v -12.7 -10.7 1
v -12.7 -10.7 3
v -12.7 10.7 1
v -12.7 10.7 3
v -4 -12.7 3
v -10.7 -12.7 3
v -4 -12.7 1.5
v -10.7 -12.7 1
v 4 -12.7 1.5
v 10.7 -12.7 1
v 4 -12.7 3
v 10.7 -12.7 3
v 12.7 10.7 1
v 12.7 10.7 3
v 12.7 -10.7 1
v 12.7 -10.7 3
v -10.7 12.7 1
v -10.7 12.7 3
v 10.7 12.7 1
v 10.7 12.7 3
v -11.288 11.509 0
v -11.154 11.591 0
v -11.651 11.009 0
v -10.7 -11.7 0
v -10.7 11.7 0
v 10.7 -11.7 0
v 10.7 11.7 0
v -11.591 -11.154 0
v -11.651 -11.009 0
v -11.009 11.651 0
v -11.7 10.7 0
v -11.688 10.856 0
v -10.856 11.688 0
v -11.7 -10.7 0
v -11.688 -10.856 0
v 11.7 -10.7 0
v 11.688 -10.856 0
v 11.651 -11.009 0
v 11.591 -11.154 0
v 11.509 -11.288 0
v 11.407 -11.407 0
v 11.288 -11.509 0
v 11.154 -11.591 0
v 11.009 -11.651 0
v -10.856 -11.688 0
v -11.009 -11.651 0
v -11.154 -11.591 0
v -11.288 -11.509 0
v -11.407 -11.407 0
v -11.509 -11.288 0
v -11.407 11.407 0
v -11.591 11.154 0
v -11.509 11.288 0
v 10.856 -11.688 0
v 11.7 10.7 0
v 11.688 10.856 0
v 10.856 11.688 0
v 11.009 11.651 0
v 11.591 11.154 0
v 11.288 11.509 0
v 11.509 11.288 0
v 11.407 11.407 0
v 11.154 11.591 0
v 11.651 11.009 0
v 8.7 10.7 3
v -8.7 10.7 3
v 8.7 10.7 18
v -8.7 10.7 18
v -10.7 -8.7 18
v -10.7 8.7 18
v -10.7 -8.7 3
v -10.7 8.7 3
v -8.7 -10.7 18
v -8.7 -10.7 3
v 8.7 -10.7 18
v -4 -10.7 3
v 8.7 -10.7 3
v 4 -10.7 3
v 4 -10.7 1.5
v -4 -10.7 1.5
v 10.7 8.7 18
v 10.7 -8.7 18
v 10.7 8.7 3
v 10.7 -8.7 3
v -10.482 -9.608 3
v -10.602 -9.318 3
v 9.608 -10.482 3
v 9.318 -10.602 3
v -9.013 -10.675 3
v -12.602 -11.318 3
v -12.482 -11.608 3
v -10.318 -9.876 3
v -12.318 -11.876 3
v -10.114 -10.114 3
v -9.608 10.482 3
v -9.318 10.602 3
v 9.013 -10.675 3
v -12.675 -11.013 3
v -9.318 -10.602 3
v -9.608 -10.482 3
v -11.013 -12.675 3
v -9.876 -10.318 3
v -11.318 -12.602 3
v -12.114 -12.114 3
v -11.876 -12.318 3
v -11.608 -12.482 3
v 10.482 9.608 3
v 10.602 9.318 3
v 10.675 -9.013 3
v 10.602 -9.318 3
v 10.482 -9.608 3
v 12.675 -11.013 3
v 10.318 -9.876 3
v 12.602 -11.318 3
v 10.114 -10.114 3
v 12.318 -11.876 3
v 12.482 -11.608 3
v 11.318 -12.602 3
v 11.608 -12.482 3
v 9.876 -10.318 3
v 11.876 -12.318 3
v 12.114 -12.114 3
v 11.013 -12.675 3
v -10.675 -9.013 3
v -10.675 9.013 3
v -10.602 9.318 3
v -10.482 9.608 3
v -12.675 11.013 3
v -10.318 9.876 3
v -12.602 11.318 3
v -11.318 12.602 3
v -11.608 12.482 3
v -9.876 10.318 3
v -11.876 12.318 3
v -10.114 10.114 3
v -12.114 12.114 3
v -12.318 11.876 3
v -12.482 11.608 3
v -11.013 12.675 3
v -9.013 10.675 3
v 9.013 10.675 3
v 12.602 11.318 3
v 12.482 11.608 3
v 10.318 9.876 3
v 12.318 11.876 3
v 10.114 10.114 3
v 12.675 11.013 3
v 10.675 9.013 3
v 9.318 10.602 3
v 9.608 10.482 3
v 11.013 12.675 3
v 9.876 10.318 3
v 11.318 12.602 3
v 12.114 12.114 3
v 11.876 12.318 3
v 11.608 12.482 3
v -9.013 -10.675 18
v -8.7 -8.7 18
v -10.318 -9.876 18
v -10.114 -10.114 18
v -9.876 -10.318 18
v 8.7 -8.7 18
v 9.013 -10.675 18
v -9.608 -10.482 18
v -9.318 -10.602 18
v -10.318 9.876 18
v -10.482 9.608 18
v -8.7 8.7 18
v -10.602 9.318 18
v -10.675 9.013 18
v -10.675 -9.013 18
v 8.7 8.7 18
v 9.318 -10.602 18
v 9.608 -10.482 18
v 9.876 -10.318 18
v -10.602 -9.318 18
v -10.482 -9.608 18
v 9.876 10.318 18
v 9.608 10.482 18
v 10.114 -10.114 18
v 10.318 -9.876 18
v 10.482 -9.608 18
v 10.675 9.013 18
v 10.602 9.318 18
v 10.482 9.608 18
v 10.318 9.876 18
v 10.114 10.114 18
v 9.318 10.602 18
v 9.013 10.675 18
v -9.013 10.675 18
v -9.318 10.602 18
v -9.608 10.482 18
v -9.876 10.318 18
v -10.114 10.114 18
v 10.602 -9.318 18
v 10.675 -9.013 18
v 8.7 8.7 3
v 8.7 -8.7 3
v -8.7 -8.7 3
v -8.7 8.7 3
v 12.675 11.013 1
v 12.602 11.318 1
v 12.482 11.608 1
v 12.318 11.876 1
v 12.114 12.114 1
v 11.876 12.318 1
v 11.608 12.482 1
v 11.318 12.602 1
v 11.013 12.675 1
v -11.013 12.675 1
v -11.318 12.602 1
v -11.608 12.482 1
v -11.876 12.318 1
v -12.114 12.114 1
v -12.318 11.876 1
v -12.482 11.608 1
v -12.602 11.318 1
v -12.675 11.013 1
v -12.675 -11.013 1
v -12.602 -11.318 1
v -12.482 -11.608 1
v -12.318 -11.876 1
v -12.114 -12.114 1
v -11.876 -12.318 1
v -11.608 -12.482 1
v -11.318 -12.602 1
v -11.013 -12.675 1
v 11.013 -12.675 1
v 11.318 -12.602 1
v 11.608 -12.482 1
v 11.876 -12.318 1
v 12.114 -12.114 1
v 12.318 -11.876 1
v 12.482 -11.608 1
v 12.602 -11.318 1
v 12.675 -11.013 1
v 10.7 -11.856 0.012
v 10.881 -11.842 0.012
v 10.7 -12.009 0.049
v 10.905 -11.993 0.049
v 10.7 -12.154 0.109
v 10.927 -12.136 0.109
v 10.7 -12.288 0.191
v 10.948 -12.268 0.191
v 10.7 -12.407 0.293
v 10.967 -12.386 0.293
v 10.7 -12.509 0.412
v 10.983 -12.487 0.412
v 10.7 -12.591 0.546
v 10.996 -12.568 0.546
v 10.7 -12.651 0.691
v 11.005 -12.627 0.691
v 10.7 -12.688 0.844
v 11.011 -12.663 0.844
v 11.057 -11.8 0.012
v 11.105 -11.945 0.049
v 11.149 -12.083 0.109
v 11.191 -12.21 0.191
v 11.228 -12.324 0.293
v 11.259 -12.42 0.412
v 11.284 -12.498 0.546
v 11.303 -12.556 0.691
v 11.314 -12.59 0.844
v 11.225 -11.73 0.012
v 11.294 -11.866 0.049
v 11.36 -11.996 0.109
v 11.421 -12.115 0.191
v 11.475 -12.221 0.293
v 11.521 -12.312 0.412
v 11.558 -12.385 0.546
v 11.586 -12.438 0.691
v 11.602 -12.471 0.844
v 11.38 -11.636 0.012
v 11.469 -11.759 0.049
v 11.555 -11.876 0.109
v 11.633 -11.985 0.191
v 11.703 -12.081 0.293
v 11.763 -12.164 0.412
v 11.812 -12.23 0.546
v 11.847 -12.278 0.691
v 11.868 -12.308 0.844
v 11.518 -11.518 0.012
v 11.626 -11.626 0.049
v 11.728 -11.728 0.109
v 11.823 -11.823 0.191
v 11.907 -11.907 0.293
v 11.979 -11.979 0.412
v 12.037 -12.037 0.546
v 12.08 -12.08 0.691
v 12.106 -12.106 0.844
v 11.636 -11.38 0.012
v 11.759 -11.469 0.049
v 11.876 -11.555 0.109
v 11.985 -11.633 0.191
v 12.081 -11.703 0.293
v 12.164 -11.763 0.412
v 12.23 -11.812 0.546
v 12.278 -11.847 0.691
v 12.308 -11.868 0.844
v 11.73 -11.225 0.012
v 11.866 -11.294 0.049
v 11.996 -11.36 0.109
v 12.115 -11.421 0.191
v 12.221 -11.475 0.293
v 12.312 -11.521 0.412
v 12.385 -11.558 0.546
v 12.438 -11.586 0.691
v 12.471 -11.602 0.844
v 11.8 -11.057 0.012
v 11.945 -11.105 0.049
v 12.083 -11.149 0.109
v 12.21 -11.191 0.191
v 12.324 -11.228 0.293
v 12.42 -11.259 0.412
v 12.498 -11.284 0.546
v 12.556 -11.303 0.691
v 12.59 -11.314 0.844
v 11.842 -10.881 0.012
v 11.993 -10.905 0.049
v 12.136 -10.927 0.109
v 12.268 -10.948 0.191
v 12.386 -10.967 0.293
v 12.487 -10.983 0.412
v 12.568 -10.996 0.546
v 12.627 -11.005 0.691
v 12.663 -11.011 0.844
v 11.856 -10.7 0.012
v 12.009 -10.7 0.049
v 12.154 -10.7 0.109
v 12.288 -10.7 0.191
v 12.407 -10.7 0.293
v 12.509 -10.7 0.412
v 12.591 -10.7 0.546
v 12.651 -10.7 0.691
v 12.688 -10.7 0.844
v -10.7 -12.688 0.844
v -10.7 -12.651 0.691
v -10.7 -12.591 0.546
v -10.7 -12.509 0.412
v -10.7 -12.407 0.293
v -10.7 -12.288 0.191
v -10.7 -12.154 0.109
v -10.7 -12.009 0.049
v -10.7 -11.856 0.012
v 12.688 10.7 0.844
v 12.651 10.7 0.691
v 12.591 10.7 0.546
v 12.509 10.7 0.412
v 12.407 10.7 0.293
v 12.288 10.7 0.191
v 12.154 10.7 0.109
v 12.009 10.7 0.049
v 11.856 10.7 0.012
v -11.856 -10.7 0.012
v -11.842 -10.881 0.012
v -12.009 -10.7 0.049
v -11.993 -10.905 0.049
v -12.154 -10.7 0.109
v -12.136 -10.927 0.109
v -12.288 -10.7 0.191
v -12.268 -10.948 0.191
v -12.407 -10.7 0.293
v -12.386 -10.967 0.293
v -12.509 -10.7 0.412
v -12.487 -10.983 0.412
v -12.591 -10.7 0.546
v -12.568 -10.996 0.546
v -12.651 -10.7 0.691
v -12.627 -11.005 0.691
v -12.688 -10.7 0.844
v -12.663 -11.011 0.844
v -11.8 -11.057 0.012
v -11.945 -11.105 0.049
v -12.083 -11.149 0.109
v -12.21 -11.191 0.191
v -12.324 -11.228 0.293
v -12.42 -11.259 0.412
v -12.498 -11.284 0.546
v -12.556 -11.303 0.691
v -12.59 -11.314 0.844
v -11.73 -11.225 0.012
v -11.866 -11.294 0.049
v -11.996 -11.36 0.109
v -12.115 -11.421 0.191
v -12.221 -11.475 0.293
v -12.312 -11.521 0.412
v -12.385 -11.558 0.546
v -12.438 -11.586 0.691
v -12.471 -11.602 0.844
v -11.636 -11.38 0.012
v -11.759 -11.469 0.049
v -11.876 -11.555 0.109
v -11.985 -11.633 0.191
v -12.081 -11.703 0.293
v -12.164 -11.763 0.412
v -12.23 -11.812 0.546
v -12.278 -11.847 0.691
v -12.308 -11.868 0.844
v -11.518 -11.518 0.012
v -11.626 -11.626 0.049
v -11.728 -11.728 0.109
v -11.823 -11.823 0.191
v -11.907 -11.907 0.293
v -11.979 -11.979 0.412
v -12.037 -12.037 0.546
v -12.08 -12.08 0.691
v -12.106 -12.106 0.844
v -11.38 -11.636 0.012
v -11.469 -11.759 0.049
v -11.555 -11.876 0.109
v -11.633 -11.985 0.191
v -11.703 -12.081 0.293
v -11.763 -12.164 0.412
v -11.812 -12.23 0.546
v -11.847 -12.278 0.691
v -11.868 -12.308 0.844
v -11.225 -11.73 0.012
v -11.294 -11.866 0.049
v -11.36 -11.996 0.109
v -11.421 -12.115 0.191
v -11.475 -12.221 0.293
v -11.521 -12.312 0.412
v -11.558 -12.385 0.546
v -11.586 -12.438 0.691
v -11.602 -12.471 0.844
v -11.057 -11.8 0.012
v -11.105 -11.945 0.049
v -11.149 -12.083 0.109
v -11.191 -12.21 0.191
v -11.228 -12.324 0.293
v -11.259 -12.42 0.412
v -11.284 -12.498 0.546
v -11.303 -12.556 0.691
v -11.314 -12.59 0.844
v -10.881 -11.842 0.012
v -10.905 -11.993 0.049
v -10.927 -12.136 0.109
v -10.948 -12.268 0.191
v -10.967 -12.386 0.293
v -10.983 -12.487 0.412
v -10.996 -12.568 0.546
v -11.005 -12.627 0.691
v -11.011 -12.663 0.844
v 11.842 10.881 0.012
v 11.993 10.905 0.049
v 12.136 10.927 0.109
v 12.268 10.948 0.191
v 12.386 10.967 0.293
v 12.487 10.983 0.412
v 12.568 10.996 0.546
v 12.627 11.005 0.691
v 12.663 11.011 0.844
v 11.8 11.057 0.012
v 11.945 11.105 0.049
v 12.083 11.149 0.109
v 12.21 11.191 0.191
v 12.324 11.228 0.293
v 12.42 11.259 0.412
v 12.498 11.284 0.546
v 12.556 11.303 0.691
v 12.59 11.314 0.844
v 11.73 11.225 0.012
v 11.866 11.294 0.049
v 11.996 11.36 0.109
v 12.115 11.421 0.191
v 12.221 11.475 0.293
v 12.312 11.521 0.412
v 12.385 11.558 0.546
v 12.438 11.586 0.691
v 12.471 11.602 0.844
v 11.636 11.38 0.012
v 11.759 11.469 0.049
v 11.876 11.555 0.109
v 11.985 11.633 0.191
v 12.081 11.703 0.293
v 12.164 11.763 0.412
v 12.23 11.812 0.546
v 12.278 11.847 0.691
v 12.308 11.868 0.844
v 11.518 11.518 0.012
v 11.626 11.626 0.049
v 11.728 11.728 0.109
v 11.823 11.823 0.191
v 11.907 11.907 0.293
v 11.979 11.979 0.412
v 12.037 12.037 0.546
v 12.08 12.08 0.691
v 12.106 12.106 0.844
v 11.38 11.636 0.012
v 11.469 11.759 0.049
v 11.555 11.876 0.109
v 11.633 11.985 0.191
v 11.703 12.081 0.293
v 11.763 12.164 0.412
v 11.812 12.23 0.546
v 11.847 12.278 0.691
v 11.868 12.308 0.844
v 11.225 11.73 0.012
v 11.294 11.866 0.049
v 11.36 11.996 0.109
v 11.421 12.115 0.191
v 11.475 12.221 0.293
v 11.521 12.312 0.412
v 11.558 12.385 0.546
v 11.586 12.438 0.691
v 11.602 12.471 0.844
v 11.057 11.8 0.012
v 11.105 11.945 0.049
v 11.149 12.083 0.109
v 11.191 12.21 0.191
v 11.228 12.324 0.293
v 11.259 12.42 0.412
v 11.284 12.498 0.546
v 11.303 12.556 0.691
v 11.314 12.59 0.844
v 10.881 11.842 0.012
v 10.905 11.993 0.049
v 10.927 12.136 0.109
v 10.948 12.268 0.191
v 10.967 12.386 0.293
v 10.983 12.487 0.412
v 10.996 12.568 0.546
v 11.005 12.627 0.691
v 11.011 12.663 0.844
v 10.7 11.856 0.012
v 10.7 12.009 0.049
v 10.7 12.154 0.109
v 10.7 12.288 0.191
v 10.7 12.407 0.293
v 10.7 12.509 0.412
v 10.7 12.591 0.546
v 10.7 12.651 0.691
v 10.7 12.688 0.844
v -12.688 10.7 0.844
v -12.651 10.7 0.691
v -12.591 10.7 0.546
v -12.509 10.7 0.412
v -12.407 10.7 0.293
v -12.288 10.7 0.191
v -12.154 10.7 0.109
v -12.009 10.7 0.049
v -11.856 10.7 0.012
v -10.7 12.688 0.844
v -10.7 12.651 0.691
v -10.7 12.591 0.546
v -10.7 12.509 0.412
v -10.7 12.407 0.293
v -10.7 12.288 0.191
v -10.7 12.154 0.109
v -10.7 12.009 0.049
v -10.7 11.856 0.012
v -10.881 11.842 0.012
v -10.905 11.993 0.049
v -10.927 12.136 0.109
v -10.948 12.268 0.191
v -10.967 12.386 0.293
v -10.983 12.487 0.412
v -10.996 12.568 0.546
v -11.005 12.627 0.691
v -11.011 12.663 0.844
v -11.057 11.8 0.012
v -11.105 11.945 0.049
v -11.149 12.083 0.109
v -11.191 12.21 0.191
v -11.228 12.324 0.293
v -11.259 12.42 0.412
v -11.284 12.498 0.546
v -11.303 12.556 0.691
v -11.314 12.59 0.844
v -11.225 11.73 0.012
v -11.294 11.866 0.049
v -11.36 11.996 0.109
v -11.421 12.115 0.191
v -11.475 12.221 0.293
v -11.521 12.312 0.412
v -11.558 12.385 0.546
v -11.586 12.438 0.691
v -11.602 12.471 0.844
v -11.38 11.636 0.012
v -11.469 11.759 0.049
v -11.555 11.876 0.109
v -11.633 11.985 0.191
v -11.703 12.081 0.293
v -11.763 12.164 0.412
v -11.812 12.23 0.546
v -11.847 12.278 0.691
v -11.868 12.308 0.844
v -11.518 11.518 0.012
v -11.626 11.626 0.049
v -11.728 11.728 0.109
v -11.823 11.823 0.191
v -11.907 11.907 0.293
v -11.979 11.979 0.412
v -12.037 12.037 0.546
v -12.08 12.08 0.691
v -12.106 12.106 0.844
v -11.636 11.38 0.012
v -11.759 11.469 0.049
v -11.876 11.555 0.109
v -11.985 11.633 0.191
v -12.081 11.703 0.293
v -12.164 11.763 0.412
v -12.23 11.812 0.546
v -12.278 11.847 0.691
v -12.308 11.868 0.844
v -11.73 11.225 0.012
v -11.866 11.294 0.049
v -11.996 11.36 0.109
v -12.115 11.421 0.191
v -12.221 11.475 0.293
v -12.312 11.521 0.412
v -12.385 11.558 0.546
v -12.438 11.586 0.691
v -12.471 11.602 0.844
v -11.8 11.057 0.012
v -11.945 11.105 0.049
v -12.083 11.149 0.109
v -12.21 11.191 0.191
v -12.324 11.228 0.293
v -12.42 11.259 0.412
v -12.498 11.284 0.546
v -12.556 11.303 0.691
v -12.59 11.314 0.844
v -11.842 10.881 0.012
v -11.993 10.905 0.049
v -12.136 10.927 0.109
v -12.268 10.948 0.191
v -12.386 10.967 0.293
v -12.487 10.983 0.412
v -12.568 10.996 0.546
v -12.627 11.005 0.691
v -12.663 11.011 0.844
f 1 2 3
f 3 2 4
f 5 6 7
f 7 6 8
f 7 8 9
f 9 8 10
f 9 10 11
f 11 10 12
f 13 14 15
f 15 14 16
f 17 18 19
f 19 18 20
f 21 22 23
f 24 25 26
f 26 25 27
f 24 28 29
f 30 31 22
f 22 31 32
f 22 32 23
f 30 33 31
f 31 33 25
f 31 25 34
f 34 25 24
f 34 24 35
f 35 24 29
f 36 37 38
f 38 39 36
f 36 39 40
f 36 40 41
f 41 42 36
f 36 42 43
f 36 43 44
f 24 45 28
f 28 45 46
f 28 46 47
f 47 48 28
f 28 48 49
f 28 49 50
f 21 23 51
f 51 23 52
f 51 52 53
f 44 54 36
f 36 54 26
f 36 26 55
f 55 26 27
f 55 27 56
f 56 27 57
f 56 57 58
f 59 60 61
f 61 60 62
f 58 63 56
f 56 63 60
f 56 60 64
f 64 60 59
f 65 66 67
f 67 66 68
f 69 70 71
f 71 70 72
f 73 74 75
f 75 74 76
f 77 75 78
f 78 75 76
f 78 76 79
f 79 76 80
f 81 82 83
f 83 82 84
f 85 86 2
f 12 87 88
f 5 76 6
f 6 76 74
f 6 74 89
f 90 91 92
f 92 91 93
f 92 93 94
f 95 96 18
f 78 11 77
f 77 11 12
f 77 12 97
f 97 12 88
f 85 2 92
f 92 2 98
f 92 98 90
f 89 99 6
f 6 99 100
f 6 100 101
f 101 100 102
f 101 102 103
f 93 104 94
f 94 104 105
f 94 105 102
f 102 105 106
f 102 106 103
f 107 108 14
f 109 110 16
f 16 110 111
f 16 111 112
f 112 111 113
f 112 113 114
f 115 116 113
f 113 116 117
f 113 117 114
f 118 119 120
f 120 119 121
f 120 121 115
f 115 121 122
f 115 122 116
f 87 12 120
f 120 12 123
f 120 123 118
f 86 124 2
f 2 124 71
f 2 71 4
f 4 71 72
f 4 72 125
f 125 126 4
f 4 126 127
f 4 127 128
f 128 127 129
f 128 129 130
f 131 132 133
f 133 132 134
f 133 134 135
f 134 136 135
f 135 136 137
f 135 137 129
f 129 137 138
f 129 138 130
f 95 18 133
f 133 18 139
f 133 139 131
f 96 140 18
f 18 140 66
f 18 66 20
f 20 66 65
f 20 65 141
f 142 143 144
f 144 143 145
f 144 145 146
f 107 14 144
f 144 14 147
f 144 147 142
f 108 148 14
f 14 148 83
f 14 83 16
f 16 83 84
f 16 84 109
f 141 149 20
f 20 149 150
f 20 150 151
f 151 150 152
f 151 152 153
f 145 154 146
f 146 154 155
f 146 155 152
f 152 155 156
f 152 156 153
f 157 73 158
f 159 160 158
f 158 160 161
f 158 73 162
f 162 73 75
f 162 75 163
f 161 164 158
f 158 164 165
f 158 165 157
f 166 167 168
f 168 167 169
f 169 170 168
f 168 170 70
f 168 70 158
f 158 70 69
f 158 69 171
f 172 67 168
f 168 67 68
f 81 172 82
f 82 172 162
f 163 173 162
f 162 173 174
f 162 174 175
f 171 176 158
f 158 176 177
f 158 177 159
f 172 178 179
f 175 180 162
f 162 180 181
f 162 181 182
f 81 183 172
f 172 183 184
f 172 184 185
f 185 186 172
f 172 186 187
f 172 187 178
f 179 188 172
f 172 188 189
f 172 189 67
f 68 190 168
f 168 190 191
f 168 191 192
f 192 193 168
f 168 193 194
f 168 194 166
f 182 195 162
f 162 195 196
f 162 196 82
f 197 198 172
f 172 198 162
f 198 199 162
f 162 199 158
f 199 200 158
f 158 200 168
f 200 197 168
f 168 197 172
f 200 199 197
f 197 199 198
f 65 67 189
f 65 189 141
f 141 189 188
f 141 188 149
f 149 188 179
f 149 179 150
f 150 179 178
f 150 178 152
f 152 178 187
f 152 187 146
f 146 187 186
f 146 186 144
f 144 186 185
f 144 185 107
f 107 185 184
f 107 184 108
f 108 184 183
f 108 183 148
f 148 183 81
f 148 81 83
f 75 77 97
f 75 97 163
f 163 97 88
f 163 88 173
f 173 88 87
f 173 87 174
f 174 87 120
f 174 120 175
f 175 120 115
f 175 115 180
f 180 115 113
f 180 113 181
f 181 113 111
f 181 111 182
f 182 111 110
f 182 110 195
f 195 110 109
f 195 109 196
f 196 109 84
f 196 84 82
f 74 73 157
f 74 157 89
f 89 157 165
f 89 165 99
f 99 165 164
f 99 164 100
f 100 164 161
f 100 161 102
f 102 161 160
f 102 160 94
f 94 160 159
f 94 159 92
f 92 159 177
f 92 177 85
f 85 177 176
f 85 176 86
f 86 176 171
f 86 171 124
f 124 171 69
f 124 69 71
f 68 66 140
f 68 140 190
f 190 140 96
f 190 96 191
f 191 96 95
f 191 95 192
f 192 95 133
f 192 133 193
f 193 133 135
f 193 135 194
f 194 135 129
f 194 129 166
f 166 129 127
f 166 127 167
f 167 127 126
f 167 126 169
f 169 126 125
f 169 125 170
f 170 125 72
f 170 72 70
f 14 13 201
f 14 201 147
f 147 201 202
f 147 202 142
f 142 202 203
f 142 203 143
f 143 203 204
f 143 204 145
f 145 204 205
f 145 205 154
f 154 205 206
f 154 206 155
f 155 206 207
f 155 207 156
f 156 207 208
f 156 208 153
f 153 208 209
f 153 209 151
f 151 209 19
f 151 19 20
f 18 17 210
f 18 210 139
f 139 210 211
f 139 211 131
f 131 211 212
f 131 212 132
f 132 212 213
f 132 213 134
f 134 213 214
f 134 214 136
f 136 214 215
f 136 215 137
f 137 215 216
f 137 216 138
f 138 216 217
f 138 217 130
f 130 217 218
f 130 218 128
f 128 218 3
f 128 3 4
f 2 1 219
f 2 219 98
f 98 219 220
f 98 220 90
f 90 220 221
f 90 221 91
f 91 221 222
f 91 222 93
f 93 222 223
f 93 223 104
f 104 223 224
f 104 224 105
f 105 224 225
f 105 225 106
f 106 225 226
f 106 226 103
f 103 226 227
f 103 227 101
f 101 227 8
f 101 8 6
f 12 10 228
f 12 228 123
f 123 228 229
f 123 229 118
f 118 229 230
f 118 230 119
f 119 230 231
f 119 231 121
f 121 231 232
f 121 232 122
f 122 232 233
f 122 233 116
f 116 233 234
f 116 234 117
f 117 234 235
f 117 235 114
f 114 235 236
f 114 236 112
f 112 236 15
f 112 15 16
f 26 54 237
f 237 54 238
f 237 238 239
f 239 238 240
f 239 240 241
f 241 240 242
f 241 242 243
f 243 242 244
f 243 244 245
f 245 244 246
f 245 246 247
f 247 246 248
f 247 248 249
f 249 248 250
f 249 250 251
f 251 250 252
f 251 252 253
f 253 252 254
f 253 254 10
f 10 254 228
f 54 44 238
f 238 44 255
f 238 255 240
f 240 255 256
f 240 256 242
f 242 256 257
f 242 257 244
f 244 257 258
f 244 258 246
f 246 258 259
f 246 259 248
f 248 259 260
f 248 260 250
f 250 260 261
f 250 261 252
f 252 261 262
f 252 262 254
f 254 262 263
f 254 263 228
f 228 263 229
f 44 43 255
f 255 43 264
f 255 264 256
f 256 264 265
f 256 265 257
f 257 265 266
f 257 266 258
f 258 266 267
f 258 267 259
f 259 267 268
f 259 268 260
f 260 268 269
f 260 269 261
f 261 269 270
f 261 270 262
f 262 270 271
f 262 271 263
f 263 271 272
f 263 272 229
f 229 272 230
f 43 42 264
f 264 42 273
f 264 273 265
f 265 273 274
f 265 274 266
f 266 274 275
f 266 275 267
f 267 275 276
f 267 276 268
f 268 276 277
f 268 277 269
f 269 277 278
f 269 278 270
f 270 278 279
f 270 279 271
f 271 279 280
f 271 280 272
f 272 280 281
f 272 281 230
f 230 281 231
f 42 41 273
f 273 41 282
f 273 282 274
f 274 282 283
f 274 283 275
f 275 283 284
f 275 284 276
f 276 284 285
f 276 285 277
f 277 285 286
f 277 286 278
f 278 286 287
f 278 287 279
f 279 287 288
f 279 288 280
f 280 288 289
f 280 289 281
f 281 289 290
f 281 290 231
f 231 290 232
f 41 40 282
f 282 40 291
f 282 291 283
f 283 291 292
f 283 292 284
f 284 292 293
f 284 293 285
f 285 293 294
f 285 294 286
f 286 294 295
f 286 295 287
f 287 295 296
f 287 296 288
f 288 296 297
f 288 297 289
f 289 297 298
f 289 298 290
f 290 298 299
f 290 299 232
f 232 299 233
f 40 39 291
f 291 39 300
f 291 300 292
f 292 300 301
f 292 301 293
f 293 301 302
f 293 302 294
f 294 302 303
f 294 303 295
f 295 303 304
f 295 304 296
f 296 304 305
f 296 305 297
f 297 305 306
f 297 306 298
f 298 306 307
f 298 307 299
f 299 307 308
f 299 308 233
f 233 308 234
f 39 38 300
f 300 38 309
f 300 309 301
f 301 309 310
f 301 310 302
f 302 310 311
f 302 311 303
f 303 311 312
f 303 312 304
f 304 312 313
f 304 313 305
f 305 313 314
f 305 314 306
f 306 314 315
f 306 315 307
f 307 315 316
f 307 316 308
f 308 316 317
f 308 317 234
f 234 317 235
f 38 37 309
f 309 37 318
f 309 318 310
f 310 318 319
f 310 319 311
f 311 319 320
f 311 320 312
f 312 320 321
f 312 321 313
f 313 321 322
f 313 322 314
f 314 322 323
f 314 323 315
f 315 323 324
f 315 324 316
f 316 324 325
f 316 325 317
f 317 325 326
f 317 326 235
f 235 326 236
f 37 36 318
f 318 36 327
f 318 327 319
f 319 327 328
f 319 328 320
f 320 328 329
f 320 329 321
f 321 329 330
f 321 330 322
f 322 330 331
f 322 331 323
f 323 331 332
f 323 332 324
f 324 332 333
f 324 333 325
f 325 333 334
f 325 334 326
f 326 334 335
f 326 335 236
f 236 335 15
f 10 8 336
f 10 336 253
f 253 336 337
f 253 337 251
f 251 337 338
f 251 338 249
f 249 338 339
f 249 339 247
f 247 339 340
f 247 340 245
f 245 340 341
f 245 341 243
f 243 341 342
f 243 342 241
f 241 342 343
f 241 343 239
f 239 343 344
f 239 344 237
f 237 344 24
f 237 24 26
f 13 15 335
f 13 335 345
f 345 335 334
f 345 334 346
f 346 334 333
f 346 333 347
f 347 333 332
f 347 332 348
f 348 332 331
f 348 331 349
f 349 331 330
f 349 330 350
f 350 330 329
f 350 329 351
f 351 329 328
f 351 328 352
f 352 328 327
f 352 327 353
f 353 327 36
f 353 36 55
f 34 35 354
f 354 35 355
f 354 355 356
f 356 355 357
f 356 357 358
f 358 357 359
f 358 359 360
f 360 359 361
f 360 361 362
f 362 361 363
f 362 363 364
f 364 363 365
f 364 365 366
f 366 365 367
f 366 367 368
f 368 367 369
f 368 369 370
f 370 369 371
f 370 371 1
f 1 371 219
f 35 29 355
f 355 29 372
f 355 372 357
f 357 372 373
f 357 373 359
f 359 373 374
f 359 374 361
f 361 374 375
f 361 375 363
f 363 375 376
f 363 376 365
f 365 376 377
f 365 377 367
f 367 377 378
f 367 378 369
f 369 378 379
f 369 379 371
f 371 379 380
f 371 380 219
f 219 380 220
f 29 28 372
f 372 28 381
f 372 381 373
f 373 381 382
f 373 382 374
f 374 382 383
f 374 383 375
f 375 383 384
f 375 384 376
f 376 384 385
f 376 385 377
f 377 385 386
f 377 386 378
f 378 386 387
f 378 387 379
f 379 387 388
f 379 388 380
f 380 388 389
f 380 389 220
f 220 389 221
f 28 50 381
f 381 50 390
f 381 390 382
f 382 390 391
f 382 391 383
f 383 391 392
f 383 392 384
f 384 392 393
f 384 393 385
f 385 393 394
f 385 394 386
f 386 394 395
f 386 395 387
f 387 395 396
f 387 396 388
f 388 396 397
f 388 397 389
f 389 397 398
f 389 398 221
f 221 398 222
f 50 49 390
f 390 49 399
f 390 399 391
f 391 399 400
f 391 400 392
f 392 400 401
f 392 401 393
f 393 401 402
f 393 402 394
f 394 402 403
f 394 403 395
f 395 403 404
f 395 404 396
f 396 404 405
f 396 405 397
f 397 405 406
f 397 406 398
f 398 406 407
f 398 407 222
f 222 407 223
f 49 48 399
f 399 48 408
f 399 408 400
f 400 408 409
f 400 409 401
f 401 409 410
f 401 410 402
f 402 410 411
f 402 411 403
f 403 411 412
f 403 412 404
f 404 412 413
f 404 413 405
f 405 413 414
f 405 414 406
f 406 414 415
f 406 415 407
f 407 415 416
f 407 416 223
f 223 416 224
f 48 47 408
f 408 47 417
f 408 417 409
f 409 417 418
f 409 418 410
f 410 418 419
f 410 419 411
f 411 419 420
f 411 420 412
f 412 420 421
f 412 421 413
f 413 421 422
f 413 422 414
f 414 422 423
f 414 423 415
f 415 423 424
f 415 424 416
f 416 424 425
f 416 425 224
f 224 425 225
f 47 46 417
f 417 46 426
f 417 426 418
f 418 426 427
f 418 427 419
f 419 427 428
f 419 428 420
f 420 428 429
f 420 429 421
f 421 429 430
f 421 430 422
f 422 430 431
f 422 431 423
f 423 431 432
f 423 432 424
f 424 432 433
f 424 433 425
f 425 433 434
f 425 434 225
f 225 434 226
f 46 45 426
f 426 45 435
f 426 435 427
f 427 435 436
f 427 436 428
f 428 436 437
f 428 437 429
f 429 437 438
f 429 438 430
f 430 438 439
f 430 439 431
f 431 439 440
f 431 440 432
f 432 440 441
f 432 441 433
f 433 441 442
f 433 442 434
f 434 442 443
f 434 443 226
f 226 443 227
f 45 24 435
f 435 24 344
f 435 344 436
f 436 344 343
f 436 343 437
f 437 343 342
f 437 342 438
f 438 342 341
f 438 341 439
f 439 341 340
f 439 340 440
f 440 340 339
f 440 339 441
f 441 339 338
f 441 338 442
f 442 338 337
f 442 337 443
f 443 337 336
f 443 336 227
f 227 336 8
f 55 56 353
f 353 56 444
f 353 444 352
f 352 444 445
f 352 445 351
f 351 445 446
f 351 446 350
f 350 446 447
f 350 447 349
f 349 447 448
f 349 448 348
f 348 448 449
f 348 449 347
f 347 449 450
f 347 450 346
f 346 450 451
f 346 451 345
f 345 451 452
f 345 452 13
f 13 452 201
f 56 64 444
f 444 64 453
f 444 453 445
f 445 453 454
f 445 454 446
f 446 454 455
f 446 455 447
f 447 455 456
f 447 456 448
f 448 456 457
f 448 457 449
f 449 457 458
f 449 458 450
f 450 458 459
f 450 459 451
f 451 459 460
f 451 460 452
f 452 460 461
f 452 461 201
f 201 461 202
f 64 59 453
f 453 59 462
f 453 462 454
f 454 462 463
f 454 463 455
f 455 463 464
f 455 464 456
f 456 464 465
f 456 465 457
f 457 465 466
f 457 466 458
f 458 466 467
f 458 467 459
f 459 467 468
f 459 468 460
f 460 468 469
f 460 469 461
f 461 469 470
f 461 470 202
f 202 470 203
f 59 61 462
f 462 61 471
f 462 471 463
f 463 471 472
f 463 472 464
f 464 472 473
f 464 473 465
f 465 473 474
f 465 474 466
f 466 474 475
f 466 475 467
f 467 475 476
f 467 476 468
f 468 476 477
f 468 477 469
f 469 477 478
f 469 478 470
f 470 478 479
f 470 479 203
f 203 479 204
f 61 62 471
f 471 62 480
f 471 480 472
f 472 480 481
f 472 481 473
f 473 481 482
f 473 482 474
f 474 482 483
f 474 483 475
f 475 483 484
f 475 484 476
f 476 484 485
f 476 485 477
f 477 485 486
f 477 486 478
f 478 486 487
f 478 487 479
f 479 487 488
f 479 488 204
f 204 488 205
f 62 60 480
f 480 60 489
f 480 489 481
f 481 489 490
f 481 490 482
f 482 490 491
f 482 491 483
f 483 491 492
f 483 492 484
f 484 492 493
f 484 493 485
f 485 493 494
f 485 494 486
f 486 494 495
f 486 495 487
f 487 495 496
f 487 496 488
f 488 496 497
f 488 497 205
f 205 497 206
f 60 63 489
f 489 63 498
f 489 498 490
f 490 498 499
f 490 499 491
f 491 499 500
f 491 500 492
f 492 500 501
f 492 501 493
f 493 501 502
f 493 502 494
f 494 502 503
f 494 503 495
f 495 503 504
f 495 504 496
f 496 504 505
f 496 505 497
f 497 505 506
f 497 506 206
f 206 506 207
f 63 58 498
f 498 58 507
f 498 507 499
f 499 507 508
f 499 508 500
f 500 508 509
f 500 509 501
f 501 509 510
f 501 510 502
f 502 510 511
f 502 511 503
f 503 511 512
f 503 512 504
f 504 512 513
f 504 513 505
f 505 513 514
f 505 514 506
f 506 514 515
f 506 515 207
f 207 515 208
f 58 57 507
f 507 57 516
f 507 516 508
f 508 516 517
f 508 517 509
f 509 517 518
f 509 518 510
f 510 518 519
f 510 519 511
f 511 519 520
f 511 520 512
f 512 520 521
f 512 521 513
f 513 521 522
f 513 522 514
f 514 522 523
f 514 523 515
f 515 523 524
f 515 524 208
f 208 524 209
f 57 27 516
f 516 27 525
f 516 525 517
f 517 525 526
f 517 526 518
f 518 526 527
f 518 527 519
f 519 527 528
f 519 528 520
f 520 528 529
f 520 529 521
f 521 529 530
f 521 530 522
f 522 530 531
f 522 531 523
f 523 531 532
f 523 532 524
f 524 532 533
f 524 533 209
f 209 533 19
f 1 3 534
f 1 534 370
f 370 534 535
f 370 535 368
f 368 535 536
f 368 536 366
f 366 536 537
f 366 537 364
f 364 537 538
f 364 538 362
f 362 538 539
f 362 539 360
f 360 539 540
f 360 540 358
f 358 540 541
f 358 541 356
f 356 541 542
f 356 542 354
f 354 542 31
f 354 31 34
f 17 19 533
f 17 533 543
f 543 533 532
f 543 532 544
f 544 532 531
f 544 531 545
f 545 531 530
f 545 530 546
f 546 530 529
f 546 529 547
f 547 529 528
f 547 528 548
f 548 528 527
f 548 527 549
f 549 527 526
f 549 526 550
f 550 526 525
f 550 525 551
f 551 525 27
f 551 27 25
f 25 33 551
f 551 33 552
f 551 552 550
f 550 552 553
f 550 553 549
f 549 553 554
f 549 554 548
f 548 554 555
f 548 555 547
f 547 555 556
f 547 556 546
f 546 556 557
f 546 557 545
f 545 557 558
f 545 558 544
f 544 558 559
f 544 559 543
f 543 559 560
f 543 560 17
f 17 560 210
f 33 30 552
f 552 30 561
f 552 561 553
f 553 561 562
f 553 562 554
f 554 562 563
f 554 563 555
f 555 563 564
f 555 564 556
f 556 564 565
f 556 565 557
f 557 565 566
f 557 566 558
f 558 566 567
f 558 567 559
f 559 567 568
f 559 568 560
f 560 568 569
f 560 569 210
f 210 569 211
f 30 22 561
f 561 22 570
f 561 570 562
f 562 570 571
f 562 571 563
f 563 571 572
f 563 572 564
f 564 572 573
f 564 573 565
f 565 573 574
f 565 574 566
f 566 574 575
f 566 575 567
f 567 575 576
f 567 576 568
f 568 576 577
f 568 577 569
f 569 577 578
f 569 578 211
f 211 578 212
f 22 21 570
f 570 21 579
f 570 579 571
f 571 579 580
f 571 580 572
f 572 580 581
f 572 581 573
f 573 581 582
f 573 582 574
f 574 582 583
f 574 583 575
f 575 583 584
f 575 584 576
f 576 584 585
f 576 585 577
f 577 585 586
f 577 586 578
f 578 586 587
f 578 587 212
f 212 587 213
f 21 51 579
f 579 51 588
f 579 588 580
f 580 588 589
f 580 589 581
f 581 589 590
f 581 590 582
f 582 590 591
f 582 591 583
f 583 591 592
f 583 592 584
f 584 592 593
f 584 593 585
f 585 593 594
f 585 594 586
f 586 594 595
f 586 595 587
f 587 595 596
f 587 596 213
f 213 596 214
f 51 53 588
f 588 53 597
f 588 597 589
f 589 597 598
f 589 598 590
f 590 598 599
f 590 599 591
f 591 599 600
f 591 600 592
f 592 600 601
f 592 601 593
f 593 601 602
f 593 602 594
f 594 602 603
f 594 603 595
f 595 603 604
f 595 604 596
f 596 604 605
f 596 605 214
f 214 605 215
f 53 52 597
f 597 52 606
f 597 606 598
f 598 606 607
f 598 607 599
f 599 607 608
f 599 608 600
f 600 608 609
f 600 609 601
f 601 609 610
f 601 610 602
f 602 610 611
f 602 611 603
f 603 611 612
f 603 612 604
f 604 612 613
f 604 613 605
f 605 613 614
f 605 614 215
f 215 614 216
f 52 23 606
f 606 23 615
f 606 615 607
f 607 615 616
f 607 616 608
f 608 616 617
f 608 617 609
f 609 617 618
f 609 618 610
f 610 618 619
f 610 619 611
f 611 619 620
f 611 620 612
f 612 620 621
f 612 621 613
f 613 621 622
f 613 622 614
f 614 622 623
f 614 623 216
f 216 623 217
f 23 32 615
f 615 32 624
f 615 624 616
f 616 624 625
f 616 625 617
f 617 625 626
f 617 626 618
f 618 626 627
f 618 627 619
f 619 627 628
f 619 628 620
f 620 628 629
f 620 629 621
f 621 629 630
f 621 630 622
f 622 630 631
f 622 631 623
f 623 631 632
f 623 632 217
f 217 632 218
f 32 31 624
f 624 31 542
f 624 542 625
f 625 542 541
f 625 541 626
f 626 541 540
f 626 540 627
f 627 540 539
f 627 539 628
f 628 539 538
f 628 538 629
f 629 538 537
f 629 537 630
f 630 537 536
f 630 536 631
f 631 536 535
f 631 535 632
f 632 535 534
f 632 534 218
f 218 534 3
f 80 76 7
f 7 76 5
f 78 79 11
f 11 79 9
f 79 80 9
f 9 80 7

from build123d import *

# Parameters (mm, degrees)
CROQUIS1_W              = 25.4
CROQUIS1_H              = 25.4
SALIENTE_EXTRUIR1_DEPTH = 18
CROQUIS2_W              = 25.4
CROQUIS2_H              = 25.4
CROQUIS2_W_2            = 21.4
CROQUIS2_H_2            = 21.4
CROQUIS2_W_3            = 17.4
CROQUIS2_H_3            = 17.4
CORTAR_EXTRUIR1_DEPTH   = 15
REDONDEO3_R             = 2
REDONDEO4_R             = 1
CROQUIS16_W             = 8
CROQUIS16_H             = 1.5
CORTAR_EXTRUIR13_DEPTH  = 2


with BuildPart() as part:
    # Croquis1 → Saliente-Extruir1 (new body)
    with BuildSketch(Plane.XY):
        Rectangle(CROQUIS1_W, CROQUIS1_H)
    extrude(amount=SALIENTE_EXTRUIR1_DEPTH)

    # Croquis2 → Cortar-Extruir1 (cut)
    # profile 1 of 2: a face of its own
    with BuildSketch(Plane.XY.offset(18)):
        Rectangle(CROQUIS2_W, CROQUIS2_H)
        Rectangle(CROQUIS2_W_2, CROQUIS2_H_2, mode=Mode.SUBTRACT)
    # profile 2 of 2: a face of its own
    with BuildSketch(Plane.XY.offset(18)):
        Rectangle(CROQUIS2_W_3, CROQUIS2_H_3)
    extrude(amount=-CORTAR_EXTRUIR1_DEPTH, mode=Mode.SUBTRACT)

    # Redondeo3
    redondeo3_edges = [part.edges().sort_by_distance(p)[0] for p in [
        (-12.7, 12.7, 1.5),
        (12.7, 12.7, 1.5),
        (12.7, -12.7, 1.5),
        (-12.7, -12.7, 1.5),
        (10.7, 10.7, 10.5),
        (-10.7, 10.7, 10.5),
        (-10.7, -10.7, 10.5),
        (10.7, -10.7, 10.5),
    ]]
    fillet(redondeo3_edges, radius=REDONDEO3_R)

    # Redondeo4
    redondeo4_edges = [part.edges().sort_by_distance(p)[0] for p in [
        (0, 12.7, 0),
        (-12.7, 0, 0),
        (12.7, 0, 0),
        (0, -12.7, 0),
        (12.114213562, -12.114213562, 0),
        (-12.114213562, -12.114213562, 0),
        (-12.114213562, 12.114213562, 0),
        (12.114213562, 12.114213562, 0),
    ]]
    fillet(redondeo4_edges, radius=REDONDEO4_R)

    # Croquis16 → Cortar-Extruir13 (cut)
    with BuildSketch(Plane.XZ.offset(12.7)):
        with Locations((0, 2.25)):
            Rectangle(CROQUIS16_W, CROQUIS16_H)
    extrude(amount=-CORTAR_EXTRUIR13_DEPTH, mode=Mode.SUBTRACT)


solid = part.part
